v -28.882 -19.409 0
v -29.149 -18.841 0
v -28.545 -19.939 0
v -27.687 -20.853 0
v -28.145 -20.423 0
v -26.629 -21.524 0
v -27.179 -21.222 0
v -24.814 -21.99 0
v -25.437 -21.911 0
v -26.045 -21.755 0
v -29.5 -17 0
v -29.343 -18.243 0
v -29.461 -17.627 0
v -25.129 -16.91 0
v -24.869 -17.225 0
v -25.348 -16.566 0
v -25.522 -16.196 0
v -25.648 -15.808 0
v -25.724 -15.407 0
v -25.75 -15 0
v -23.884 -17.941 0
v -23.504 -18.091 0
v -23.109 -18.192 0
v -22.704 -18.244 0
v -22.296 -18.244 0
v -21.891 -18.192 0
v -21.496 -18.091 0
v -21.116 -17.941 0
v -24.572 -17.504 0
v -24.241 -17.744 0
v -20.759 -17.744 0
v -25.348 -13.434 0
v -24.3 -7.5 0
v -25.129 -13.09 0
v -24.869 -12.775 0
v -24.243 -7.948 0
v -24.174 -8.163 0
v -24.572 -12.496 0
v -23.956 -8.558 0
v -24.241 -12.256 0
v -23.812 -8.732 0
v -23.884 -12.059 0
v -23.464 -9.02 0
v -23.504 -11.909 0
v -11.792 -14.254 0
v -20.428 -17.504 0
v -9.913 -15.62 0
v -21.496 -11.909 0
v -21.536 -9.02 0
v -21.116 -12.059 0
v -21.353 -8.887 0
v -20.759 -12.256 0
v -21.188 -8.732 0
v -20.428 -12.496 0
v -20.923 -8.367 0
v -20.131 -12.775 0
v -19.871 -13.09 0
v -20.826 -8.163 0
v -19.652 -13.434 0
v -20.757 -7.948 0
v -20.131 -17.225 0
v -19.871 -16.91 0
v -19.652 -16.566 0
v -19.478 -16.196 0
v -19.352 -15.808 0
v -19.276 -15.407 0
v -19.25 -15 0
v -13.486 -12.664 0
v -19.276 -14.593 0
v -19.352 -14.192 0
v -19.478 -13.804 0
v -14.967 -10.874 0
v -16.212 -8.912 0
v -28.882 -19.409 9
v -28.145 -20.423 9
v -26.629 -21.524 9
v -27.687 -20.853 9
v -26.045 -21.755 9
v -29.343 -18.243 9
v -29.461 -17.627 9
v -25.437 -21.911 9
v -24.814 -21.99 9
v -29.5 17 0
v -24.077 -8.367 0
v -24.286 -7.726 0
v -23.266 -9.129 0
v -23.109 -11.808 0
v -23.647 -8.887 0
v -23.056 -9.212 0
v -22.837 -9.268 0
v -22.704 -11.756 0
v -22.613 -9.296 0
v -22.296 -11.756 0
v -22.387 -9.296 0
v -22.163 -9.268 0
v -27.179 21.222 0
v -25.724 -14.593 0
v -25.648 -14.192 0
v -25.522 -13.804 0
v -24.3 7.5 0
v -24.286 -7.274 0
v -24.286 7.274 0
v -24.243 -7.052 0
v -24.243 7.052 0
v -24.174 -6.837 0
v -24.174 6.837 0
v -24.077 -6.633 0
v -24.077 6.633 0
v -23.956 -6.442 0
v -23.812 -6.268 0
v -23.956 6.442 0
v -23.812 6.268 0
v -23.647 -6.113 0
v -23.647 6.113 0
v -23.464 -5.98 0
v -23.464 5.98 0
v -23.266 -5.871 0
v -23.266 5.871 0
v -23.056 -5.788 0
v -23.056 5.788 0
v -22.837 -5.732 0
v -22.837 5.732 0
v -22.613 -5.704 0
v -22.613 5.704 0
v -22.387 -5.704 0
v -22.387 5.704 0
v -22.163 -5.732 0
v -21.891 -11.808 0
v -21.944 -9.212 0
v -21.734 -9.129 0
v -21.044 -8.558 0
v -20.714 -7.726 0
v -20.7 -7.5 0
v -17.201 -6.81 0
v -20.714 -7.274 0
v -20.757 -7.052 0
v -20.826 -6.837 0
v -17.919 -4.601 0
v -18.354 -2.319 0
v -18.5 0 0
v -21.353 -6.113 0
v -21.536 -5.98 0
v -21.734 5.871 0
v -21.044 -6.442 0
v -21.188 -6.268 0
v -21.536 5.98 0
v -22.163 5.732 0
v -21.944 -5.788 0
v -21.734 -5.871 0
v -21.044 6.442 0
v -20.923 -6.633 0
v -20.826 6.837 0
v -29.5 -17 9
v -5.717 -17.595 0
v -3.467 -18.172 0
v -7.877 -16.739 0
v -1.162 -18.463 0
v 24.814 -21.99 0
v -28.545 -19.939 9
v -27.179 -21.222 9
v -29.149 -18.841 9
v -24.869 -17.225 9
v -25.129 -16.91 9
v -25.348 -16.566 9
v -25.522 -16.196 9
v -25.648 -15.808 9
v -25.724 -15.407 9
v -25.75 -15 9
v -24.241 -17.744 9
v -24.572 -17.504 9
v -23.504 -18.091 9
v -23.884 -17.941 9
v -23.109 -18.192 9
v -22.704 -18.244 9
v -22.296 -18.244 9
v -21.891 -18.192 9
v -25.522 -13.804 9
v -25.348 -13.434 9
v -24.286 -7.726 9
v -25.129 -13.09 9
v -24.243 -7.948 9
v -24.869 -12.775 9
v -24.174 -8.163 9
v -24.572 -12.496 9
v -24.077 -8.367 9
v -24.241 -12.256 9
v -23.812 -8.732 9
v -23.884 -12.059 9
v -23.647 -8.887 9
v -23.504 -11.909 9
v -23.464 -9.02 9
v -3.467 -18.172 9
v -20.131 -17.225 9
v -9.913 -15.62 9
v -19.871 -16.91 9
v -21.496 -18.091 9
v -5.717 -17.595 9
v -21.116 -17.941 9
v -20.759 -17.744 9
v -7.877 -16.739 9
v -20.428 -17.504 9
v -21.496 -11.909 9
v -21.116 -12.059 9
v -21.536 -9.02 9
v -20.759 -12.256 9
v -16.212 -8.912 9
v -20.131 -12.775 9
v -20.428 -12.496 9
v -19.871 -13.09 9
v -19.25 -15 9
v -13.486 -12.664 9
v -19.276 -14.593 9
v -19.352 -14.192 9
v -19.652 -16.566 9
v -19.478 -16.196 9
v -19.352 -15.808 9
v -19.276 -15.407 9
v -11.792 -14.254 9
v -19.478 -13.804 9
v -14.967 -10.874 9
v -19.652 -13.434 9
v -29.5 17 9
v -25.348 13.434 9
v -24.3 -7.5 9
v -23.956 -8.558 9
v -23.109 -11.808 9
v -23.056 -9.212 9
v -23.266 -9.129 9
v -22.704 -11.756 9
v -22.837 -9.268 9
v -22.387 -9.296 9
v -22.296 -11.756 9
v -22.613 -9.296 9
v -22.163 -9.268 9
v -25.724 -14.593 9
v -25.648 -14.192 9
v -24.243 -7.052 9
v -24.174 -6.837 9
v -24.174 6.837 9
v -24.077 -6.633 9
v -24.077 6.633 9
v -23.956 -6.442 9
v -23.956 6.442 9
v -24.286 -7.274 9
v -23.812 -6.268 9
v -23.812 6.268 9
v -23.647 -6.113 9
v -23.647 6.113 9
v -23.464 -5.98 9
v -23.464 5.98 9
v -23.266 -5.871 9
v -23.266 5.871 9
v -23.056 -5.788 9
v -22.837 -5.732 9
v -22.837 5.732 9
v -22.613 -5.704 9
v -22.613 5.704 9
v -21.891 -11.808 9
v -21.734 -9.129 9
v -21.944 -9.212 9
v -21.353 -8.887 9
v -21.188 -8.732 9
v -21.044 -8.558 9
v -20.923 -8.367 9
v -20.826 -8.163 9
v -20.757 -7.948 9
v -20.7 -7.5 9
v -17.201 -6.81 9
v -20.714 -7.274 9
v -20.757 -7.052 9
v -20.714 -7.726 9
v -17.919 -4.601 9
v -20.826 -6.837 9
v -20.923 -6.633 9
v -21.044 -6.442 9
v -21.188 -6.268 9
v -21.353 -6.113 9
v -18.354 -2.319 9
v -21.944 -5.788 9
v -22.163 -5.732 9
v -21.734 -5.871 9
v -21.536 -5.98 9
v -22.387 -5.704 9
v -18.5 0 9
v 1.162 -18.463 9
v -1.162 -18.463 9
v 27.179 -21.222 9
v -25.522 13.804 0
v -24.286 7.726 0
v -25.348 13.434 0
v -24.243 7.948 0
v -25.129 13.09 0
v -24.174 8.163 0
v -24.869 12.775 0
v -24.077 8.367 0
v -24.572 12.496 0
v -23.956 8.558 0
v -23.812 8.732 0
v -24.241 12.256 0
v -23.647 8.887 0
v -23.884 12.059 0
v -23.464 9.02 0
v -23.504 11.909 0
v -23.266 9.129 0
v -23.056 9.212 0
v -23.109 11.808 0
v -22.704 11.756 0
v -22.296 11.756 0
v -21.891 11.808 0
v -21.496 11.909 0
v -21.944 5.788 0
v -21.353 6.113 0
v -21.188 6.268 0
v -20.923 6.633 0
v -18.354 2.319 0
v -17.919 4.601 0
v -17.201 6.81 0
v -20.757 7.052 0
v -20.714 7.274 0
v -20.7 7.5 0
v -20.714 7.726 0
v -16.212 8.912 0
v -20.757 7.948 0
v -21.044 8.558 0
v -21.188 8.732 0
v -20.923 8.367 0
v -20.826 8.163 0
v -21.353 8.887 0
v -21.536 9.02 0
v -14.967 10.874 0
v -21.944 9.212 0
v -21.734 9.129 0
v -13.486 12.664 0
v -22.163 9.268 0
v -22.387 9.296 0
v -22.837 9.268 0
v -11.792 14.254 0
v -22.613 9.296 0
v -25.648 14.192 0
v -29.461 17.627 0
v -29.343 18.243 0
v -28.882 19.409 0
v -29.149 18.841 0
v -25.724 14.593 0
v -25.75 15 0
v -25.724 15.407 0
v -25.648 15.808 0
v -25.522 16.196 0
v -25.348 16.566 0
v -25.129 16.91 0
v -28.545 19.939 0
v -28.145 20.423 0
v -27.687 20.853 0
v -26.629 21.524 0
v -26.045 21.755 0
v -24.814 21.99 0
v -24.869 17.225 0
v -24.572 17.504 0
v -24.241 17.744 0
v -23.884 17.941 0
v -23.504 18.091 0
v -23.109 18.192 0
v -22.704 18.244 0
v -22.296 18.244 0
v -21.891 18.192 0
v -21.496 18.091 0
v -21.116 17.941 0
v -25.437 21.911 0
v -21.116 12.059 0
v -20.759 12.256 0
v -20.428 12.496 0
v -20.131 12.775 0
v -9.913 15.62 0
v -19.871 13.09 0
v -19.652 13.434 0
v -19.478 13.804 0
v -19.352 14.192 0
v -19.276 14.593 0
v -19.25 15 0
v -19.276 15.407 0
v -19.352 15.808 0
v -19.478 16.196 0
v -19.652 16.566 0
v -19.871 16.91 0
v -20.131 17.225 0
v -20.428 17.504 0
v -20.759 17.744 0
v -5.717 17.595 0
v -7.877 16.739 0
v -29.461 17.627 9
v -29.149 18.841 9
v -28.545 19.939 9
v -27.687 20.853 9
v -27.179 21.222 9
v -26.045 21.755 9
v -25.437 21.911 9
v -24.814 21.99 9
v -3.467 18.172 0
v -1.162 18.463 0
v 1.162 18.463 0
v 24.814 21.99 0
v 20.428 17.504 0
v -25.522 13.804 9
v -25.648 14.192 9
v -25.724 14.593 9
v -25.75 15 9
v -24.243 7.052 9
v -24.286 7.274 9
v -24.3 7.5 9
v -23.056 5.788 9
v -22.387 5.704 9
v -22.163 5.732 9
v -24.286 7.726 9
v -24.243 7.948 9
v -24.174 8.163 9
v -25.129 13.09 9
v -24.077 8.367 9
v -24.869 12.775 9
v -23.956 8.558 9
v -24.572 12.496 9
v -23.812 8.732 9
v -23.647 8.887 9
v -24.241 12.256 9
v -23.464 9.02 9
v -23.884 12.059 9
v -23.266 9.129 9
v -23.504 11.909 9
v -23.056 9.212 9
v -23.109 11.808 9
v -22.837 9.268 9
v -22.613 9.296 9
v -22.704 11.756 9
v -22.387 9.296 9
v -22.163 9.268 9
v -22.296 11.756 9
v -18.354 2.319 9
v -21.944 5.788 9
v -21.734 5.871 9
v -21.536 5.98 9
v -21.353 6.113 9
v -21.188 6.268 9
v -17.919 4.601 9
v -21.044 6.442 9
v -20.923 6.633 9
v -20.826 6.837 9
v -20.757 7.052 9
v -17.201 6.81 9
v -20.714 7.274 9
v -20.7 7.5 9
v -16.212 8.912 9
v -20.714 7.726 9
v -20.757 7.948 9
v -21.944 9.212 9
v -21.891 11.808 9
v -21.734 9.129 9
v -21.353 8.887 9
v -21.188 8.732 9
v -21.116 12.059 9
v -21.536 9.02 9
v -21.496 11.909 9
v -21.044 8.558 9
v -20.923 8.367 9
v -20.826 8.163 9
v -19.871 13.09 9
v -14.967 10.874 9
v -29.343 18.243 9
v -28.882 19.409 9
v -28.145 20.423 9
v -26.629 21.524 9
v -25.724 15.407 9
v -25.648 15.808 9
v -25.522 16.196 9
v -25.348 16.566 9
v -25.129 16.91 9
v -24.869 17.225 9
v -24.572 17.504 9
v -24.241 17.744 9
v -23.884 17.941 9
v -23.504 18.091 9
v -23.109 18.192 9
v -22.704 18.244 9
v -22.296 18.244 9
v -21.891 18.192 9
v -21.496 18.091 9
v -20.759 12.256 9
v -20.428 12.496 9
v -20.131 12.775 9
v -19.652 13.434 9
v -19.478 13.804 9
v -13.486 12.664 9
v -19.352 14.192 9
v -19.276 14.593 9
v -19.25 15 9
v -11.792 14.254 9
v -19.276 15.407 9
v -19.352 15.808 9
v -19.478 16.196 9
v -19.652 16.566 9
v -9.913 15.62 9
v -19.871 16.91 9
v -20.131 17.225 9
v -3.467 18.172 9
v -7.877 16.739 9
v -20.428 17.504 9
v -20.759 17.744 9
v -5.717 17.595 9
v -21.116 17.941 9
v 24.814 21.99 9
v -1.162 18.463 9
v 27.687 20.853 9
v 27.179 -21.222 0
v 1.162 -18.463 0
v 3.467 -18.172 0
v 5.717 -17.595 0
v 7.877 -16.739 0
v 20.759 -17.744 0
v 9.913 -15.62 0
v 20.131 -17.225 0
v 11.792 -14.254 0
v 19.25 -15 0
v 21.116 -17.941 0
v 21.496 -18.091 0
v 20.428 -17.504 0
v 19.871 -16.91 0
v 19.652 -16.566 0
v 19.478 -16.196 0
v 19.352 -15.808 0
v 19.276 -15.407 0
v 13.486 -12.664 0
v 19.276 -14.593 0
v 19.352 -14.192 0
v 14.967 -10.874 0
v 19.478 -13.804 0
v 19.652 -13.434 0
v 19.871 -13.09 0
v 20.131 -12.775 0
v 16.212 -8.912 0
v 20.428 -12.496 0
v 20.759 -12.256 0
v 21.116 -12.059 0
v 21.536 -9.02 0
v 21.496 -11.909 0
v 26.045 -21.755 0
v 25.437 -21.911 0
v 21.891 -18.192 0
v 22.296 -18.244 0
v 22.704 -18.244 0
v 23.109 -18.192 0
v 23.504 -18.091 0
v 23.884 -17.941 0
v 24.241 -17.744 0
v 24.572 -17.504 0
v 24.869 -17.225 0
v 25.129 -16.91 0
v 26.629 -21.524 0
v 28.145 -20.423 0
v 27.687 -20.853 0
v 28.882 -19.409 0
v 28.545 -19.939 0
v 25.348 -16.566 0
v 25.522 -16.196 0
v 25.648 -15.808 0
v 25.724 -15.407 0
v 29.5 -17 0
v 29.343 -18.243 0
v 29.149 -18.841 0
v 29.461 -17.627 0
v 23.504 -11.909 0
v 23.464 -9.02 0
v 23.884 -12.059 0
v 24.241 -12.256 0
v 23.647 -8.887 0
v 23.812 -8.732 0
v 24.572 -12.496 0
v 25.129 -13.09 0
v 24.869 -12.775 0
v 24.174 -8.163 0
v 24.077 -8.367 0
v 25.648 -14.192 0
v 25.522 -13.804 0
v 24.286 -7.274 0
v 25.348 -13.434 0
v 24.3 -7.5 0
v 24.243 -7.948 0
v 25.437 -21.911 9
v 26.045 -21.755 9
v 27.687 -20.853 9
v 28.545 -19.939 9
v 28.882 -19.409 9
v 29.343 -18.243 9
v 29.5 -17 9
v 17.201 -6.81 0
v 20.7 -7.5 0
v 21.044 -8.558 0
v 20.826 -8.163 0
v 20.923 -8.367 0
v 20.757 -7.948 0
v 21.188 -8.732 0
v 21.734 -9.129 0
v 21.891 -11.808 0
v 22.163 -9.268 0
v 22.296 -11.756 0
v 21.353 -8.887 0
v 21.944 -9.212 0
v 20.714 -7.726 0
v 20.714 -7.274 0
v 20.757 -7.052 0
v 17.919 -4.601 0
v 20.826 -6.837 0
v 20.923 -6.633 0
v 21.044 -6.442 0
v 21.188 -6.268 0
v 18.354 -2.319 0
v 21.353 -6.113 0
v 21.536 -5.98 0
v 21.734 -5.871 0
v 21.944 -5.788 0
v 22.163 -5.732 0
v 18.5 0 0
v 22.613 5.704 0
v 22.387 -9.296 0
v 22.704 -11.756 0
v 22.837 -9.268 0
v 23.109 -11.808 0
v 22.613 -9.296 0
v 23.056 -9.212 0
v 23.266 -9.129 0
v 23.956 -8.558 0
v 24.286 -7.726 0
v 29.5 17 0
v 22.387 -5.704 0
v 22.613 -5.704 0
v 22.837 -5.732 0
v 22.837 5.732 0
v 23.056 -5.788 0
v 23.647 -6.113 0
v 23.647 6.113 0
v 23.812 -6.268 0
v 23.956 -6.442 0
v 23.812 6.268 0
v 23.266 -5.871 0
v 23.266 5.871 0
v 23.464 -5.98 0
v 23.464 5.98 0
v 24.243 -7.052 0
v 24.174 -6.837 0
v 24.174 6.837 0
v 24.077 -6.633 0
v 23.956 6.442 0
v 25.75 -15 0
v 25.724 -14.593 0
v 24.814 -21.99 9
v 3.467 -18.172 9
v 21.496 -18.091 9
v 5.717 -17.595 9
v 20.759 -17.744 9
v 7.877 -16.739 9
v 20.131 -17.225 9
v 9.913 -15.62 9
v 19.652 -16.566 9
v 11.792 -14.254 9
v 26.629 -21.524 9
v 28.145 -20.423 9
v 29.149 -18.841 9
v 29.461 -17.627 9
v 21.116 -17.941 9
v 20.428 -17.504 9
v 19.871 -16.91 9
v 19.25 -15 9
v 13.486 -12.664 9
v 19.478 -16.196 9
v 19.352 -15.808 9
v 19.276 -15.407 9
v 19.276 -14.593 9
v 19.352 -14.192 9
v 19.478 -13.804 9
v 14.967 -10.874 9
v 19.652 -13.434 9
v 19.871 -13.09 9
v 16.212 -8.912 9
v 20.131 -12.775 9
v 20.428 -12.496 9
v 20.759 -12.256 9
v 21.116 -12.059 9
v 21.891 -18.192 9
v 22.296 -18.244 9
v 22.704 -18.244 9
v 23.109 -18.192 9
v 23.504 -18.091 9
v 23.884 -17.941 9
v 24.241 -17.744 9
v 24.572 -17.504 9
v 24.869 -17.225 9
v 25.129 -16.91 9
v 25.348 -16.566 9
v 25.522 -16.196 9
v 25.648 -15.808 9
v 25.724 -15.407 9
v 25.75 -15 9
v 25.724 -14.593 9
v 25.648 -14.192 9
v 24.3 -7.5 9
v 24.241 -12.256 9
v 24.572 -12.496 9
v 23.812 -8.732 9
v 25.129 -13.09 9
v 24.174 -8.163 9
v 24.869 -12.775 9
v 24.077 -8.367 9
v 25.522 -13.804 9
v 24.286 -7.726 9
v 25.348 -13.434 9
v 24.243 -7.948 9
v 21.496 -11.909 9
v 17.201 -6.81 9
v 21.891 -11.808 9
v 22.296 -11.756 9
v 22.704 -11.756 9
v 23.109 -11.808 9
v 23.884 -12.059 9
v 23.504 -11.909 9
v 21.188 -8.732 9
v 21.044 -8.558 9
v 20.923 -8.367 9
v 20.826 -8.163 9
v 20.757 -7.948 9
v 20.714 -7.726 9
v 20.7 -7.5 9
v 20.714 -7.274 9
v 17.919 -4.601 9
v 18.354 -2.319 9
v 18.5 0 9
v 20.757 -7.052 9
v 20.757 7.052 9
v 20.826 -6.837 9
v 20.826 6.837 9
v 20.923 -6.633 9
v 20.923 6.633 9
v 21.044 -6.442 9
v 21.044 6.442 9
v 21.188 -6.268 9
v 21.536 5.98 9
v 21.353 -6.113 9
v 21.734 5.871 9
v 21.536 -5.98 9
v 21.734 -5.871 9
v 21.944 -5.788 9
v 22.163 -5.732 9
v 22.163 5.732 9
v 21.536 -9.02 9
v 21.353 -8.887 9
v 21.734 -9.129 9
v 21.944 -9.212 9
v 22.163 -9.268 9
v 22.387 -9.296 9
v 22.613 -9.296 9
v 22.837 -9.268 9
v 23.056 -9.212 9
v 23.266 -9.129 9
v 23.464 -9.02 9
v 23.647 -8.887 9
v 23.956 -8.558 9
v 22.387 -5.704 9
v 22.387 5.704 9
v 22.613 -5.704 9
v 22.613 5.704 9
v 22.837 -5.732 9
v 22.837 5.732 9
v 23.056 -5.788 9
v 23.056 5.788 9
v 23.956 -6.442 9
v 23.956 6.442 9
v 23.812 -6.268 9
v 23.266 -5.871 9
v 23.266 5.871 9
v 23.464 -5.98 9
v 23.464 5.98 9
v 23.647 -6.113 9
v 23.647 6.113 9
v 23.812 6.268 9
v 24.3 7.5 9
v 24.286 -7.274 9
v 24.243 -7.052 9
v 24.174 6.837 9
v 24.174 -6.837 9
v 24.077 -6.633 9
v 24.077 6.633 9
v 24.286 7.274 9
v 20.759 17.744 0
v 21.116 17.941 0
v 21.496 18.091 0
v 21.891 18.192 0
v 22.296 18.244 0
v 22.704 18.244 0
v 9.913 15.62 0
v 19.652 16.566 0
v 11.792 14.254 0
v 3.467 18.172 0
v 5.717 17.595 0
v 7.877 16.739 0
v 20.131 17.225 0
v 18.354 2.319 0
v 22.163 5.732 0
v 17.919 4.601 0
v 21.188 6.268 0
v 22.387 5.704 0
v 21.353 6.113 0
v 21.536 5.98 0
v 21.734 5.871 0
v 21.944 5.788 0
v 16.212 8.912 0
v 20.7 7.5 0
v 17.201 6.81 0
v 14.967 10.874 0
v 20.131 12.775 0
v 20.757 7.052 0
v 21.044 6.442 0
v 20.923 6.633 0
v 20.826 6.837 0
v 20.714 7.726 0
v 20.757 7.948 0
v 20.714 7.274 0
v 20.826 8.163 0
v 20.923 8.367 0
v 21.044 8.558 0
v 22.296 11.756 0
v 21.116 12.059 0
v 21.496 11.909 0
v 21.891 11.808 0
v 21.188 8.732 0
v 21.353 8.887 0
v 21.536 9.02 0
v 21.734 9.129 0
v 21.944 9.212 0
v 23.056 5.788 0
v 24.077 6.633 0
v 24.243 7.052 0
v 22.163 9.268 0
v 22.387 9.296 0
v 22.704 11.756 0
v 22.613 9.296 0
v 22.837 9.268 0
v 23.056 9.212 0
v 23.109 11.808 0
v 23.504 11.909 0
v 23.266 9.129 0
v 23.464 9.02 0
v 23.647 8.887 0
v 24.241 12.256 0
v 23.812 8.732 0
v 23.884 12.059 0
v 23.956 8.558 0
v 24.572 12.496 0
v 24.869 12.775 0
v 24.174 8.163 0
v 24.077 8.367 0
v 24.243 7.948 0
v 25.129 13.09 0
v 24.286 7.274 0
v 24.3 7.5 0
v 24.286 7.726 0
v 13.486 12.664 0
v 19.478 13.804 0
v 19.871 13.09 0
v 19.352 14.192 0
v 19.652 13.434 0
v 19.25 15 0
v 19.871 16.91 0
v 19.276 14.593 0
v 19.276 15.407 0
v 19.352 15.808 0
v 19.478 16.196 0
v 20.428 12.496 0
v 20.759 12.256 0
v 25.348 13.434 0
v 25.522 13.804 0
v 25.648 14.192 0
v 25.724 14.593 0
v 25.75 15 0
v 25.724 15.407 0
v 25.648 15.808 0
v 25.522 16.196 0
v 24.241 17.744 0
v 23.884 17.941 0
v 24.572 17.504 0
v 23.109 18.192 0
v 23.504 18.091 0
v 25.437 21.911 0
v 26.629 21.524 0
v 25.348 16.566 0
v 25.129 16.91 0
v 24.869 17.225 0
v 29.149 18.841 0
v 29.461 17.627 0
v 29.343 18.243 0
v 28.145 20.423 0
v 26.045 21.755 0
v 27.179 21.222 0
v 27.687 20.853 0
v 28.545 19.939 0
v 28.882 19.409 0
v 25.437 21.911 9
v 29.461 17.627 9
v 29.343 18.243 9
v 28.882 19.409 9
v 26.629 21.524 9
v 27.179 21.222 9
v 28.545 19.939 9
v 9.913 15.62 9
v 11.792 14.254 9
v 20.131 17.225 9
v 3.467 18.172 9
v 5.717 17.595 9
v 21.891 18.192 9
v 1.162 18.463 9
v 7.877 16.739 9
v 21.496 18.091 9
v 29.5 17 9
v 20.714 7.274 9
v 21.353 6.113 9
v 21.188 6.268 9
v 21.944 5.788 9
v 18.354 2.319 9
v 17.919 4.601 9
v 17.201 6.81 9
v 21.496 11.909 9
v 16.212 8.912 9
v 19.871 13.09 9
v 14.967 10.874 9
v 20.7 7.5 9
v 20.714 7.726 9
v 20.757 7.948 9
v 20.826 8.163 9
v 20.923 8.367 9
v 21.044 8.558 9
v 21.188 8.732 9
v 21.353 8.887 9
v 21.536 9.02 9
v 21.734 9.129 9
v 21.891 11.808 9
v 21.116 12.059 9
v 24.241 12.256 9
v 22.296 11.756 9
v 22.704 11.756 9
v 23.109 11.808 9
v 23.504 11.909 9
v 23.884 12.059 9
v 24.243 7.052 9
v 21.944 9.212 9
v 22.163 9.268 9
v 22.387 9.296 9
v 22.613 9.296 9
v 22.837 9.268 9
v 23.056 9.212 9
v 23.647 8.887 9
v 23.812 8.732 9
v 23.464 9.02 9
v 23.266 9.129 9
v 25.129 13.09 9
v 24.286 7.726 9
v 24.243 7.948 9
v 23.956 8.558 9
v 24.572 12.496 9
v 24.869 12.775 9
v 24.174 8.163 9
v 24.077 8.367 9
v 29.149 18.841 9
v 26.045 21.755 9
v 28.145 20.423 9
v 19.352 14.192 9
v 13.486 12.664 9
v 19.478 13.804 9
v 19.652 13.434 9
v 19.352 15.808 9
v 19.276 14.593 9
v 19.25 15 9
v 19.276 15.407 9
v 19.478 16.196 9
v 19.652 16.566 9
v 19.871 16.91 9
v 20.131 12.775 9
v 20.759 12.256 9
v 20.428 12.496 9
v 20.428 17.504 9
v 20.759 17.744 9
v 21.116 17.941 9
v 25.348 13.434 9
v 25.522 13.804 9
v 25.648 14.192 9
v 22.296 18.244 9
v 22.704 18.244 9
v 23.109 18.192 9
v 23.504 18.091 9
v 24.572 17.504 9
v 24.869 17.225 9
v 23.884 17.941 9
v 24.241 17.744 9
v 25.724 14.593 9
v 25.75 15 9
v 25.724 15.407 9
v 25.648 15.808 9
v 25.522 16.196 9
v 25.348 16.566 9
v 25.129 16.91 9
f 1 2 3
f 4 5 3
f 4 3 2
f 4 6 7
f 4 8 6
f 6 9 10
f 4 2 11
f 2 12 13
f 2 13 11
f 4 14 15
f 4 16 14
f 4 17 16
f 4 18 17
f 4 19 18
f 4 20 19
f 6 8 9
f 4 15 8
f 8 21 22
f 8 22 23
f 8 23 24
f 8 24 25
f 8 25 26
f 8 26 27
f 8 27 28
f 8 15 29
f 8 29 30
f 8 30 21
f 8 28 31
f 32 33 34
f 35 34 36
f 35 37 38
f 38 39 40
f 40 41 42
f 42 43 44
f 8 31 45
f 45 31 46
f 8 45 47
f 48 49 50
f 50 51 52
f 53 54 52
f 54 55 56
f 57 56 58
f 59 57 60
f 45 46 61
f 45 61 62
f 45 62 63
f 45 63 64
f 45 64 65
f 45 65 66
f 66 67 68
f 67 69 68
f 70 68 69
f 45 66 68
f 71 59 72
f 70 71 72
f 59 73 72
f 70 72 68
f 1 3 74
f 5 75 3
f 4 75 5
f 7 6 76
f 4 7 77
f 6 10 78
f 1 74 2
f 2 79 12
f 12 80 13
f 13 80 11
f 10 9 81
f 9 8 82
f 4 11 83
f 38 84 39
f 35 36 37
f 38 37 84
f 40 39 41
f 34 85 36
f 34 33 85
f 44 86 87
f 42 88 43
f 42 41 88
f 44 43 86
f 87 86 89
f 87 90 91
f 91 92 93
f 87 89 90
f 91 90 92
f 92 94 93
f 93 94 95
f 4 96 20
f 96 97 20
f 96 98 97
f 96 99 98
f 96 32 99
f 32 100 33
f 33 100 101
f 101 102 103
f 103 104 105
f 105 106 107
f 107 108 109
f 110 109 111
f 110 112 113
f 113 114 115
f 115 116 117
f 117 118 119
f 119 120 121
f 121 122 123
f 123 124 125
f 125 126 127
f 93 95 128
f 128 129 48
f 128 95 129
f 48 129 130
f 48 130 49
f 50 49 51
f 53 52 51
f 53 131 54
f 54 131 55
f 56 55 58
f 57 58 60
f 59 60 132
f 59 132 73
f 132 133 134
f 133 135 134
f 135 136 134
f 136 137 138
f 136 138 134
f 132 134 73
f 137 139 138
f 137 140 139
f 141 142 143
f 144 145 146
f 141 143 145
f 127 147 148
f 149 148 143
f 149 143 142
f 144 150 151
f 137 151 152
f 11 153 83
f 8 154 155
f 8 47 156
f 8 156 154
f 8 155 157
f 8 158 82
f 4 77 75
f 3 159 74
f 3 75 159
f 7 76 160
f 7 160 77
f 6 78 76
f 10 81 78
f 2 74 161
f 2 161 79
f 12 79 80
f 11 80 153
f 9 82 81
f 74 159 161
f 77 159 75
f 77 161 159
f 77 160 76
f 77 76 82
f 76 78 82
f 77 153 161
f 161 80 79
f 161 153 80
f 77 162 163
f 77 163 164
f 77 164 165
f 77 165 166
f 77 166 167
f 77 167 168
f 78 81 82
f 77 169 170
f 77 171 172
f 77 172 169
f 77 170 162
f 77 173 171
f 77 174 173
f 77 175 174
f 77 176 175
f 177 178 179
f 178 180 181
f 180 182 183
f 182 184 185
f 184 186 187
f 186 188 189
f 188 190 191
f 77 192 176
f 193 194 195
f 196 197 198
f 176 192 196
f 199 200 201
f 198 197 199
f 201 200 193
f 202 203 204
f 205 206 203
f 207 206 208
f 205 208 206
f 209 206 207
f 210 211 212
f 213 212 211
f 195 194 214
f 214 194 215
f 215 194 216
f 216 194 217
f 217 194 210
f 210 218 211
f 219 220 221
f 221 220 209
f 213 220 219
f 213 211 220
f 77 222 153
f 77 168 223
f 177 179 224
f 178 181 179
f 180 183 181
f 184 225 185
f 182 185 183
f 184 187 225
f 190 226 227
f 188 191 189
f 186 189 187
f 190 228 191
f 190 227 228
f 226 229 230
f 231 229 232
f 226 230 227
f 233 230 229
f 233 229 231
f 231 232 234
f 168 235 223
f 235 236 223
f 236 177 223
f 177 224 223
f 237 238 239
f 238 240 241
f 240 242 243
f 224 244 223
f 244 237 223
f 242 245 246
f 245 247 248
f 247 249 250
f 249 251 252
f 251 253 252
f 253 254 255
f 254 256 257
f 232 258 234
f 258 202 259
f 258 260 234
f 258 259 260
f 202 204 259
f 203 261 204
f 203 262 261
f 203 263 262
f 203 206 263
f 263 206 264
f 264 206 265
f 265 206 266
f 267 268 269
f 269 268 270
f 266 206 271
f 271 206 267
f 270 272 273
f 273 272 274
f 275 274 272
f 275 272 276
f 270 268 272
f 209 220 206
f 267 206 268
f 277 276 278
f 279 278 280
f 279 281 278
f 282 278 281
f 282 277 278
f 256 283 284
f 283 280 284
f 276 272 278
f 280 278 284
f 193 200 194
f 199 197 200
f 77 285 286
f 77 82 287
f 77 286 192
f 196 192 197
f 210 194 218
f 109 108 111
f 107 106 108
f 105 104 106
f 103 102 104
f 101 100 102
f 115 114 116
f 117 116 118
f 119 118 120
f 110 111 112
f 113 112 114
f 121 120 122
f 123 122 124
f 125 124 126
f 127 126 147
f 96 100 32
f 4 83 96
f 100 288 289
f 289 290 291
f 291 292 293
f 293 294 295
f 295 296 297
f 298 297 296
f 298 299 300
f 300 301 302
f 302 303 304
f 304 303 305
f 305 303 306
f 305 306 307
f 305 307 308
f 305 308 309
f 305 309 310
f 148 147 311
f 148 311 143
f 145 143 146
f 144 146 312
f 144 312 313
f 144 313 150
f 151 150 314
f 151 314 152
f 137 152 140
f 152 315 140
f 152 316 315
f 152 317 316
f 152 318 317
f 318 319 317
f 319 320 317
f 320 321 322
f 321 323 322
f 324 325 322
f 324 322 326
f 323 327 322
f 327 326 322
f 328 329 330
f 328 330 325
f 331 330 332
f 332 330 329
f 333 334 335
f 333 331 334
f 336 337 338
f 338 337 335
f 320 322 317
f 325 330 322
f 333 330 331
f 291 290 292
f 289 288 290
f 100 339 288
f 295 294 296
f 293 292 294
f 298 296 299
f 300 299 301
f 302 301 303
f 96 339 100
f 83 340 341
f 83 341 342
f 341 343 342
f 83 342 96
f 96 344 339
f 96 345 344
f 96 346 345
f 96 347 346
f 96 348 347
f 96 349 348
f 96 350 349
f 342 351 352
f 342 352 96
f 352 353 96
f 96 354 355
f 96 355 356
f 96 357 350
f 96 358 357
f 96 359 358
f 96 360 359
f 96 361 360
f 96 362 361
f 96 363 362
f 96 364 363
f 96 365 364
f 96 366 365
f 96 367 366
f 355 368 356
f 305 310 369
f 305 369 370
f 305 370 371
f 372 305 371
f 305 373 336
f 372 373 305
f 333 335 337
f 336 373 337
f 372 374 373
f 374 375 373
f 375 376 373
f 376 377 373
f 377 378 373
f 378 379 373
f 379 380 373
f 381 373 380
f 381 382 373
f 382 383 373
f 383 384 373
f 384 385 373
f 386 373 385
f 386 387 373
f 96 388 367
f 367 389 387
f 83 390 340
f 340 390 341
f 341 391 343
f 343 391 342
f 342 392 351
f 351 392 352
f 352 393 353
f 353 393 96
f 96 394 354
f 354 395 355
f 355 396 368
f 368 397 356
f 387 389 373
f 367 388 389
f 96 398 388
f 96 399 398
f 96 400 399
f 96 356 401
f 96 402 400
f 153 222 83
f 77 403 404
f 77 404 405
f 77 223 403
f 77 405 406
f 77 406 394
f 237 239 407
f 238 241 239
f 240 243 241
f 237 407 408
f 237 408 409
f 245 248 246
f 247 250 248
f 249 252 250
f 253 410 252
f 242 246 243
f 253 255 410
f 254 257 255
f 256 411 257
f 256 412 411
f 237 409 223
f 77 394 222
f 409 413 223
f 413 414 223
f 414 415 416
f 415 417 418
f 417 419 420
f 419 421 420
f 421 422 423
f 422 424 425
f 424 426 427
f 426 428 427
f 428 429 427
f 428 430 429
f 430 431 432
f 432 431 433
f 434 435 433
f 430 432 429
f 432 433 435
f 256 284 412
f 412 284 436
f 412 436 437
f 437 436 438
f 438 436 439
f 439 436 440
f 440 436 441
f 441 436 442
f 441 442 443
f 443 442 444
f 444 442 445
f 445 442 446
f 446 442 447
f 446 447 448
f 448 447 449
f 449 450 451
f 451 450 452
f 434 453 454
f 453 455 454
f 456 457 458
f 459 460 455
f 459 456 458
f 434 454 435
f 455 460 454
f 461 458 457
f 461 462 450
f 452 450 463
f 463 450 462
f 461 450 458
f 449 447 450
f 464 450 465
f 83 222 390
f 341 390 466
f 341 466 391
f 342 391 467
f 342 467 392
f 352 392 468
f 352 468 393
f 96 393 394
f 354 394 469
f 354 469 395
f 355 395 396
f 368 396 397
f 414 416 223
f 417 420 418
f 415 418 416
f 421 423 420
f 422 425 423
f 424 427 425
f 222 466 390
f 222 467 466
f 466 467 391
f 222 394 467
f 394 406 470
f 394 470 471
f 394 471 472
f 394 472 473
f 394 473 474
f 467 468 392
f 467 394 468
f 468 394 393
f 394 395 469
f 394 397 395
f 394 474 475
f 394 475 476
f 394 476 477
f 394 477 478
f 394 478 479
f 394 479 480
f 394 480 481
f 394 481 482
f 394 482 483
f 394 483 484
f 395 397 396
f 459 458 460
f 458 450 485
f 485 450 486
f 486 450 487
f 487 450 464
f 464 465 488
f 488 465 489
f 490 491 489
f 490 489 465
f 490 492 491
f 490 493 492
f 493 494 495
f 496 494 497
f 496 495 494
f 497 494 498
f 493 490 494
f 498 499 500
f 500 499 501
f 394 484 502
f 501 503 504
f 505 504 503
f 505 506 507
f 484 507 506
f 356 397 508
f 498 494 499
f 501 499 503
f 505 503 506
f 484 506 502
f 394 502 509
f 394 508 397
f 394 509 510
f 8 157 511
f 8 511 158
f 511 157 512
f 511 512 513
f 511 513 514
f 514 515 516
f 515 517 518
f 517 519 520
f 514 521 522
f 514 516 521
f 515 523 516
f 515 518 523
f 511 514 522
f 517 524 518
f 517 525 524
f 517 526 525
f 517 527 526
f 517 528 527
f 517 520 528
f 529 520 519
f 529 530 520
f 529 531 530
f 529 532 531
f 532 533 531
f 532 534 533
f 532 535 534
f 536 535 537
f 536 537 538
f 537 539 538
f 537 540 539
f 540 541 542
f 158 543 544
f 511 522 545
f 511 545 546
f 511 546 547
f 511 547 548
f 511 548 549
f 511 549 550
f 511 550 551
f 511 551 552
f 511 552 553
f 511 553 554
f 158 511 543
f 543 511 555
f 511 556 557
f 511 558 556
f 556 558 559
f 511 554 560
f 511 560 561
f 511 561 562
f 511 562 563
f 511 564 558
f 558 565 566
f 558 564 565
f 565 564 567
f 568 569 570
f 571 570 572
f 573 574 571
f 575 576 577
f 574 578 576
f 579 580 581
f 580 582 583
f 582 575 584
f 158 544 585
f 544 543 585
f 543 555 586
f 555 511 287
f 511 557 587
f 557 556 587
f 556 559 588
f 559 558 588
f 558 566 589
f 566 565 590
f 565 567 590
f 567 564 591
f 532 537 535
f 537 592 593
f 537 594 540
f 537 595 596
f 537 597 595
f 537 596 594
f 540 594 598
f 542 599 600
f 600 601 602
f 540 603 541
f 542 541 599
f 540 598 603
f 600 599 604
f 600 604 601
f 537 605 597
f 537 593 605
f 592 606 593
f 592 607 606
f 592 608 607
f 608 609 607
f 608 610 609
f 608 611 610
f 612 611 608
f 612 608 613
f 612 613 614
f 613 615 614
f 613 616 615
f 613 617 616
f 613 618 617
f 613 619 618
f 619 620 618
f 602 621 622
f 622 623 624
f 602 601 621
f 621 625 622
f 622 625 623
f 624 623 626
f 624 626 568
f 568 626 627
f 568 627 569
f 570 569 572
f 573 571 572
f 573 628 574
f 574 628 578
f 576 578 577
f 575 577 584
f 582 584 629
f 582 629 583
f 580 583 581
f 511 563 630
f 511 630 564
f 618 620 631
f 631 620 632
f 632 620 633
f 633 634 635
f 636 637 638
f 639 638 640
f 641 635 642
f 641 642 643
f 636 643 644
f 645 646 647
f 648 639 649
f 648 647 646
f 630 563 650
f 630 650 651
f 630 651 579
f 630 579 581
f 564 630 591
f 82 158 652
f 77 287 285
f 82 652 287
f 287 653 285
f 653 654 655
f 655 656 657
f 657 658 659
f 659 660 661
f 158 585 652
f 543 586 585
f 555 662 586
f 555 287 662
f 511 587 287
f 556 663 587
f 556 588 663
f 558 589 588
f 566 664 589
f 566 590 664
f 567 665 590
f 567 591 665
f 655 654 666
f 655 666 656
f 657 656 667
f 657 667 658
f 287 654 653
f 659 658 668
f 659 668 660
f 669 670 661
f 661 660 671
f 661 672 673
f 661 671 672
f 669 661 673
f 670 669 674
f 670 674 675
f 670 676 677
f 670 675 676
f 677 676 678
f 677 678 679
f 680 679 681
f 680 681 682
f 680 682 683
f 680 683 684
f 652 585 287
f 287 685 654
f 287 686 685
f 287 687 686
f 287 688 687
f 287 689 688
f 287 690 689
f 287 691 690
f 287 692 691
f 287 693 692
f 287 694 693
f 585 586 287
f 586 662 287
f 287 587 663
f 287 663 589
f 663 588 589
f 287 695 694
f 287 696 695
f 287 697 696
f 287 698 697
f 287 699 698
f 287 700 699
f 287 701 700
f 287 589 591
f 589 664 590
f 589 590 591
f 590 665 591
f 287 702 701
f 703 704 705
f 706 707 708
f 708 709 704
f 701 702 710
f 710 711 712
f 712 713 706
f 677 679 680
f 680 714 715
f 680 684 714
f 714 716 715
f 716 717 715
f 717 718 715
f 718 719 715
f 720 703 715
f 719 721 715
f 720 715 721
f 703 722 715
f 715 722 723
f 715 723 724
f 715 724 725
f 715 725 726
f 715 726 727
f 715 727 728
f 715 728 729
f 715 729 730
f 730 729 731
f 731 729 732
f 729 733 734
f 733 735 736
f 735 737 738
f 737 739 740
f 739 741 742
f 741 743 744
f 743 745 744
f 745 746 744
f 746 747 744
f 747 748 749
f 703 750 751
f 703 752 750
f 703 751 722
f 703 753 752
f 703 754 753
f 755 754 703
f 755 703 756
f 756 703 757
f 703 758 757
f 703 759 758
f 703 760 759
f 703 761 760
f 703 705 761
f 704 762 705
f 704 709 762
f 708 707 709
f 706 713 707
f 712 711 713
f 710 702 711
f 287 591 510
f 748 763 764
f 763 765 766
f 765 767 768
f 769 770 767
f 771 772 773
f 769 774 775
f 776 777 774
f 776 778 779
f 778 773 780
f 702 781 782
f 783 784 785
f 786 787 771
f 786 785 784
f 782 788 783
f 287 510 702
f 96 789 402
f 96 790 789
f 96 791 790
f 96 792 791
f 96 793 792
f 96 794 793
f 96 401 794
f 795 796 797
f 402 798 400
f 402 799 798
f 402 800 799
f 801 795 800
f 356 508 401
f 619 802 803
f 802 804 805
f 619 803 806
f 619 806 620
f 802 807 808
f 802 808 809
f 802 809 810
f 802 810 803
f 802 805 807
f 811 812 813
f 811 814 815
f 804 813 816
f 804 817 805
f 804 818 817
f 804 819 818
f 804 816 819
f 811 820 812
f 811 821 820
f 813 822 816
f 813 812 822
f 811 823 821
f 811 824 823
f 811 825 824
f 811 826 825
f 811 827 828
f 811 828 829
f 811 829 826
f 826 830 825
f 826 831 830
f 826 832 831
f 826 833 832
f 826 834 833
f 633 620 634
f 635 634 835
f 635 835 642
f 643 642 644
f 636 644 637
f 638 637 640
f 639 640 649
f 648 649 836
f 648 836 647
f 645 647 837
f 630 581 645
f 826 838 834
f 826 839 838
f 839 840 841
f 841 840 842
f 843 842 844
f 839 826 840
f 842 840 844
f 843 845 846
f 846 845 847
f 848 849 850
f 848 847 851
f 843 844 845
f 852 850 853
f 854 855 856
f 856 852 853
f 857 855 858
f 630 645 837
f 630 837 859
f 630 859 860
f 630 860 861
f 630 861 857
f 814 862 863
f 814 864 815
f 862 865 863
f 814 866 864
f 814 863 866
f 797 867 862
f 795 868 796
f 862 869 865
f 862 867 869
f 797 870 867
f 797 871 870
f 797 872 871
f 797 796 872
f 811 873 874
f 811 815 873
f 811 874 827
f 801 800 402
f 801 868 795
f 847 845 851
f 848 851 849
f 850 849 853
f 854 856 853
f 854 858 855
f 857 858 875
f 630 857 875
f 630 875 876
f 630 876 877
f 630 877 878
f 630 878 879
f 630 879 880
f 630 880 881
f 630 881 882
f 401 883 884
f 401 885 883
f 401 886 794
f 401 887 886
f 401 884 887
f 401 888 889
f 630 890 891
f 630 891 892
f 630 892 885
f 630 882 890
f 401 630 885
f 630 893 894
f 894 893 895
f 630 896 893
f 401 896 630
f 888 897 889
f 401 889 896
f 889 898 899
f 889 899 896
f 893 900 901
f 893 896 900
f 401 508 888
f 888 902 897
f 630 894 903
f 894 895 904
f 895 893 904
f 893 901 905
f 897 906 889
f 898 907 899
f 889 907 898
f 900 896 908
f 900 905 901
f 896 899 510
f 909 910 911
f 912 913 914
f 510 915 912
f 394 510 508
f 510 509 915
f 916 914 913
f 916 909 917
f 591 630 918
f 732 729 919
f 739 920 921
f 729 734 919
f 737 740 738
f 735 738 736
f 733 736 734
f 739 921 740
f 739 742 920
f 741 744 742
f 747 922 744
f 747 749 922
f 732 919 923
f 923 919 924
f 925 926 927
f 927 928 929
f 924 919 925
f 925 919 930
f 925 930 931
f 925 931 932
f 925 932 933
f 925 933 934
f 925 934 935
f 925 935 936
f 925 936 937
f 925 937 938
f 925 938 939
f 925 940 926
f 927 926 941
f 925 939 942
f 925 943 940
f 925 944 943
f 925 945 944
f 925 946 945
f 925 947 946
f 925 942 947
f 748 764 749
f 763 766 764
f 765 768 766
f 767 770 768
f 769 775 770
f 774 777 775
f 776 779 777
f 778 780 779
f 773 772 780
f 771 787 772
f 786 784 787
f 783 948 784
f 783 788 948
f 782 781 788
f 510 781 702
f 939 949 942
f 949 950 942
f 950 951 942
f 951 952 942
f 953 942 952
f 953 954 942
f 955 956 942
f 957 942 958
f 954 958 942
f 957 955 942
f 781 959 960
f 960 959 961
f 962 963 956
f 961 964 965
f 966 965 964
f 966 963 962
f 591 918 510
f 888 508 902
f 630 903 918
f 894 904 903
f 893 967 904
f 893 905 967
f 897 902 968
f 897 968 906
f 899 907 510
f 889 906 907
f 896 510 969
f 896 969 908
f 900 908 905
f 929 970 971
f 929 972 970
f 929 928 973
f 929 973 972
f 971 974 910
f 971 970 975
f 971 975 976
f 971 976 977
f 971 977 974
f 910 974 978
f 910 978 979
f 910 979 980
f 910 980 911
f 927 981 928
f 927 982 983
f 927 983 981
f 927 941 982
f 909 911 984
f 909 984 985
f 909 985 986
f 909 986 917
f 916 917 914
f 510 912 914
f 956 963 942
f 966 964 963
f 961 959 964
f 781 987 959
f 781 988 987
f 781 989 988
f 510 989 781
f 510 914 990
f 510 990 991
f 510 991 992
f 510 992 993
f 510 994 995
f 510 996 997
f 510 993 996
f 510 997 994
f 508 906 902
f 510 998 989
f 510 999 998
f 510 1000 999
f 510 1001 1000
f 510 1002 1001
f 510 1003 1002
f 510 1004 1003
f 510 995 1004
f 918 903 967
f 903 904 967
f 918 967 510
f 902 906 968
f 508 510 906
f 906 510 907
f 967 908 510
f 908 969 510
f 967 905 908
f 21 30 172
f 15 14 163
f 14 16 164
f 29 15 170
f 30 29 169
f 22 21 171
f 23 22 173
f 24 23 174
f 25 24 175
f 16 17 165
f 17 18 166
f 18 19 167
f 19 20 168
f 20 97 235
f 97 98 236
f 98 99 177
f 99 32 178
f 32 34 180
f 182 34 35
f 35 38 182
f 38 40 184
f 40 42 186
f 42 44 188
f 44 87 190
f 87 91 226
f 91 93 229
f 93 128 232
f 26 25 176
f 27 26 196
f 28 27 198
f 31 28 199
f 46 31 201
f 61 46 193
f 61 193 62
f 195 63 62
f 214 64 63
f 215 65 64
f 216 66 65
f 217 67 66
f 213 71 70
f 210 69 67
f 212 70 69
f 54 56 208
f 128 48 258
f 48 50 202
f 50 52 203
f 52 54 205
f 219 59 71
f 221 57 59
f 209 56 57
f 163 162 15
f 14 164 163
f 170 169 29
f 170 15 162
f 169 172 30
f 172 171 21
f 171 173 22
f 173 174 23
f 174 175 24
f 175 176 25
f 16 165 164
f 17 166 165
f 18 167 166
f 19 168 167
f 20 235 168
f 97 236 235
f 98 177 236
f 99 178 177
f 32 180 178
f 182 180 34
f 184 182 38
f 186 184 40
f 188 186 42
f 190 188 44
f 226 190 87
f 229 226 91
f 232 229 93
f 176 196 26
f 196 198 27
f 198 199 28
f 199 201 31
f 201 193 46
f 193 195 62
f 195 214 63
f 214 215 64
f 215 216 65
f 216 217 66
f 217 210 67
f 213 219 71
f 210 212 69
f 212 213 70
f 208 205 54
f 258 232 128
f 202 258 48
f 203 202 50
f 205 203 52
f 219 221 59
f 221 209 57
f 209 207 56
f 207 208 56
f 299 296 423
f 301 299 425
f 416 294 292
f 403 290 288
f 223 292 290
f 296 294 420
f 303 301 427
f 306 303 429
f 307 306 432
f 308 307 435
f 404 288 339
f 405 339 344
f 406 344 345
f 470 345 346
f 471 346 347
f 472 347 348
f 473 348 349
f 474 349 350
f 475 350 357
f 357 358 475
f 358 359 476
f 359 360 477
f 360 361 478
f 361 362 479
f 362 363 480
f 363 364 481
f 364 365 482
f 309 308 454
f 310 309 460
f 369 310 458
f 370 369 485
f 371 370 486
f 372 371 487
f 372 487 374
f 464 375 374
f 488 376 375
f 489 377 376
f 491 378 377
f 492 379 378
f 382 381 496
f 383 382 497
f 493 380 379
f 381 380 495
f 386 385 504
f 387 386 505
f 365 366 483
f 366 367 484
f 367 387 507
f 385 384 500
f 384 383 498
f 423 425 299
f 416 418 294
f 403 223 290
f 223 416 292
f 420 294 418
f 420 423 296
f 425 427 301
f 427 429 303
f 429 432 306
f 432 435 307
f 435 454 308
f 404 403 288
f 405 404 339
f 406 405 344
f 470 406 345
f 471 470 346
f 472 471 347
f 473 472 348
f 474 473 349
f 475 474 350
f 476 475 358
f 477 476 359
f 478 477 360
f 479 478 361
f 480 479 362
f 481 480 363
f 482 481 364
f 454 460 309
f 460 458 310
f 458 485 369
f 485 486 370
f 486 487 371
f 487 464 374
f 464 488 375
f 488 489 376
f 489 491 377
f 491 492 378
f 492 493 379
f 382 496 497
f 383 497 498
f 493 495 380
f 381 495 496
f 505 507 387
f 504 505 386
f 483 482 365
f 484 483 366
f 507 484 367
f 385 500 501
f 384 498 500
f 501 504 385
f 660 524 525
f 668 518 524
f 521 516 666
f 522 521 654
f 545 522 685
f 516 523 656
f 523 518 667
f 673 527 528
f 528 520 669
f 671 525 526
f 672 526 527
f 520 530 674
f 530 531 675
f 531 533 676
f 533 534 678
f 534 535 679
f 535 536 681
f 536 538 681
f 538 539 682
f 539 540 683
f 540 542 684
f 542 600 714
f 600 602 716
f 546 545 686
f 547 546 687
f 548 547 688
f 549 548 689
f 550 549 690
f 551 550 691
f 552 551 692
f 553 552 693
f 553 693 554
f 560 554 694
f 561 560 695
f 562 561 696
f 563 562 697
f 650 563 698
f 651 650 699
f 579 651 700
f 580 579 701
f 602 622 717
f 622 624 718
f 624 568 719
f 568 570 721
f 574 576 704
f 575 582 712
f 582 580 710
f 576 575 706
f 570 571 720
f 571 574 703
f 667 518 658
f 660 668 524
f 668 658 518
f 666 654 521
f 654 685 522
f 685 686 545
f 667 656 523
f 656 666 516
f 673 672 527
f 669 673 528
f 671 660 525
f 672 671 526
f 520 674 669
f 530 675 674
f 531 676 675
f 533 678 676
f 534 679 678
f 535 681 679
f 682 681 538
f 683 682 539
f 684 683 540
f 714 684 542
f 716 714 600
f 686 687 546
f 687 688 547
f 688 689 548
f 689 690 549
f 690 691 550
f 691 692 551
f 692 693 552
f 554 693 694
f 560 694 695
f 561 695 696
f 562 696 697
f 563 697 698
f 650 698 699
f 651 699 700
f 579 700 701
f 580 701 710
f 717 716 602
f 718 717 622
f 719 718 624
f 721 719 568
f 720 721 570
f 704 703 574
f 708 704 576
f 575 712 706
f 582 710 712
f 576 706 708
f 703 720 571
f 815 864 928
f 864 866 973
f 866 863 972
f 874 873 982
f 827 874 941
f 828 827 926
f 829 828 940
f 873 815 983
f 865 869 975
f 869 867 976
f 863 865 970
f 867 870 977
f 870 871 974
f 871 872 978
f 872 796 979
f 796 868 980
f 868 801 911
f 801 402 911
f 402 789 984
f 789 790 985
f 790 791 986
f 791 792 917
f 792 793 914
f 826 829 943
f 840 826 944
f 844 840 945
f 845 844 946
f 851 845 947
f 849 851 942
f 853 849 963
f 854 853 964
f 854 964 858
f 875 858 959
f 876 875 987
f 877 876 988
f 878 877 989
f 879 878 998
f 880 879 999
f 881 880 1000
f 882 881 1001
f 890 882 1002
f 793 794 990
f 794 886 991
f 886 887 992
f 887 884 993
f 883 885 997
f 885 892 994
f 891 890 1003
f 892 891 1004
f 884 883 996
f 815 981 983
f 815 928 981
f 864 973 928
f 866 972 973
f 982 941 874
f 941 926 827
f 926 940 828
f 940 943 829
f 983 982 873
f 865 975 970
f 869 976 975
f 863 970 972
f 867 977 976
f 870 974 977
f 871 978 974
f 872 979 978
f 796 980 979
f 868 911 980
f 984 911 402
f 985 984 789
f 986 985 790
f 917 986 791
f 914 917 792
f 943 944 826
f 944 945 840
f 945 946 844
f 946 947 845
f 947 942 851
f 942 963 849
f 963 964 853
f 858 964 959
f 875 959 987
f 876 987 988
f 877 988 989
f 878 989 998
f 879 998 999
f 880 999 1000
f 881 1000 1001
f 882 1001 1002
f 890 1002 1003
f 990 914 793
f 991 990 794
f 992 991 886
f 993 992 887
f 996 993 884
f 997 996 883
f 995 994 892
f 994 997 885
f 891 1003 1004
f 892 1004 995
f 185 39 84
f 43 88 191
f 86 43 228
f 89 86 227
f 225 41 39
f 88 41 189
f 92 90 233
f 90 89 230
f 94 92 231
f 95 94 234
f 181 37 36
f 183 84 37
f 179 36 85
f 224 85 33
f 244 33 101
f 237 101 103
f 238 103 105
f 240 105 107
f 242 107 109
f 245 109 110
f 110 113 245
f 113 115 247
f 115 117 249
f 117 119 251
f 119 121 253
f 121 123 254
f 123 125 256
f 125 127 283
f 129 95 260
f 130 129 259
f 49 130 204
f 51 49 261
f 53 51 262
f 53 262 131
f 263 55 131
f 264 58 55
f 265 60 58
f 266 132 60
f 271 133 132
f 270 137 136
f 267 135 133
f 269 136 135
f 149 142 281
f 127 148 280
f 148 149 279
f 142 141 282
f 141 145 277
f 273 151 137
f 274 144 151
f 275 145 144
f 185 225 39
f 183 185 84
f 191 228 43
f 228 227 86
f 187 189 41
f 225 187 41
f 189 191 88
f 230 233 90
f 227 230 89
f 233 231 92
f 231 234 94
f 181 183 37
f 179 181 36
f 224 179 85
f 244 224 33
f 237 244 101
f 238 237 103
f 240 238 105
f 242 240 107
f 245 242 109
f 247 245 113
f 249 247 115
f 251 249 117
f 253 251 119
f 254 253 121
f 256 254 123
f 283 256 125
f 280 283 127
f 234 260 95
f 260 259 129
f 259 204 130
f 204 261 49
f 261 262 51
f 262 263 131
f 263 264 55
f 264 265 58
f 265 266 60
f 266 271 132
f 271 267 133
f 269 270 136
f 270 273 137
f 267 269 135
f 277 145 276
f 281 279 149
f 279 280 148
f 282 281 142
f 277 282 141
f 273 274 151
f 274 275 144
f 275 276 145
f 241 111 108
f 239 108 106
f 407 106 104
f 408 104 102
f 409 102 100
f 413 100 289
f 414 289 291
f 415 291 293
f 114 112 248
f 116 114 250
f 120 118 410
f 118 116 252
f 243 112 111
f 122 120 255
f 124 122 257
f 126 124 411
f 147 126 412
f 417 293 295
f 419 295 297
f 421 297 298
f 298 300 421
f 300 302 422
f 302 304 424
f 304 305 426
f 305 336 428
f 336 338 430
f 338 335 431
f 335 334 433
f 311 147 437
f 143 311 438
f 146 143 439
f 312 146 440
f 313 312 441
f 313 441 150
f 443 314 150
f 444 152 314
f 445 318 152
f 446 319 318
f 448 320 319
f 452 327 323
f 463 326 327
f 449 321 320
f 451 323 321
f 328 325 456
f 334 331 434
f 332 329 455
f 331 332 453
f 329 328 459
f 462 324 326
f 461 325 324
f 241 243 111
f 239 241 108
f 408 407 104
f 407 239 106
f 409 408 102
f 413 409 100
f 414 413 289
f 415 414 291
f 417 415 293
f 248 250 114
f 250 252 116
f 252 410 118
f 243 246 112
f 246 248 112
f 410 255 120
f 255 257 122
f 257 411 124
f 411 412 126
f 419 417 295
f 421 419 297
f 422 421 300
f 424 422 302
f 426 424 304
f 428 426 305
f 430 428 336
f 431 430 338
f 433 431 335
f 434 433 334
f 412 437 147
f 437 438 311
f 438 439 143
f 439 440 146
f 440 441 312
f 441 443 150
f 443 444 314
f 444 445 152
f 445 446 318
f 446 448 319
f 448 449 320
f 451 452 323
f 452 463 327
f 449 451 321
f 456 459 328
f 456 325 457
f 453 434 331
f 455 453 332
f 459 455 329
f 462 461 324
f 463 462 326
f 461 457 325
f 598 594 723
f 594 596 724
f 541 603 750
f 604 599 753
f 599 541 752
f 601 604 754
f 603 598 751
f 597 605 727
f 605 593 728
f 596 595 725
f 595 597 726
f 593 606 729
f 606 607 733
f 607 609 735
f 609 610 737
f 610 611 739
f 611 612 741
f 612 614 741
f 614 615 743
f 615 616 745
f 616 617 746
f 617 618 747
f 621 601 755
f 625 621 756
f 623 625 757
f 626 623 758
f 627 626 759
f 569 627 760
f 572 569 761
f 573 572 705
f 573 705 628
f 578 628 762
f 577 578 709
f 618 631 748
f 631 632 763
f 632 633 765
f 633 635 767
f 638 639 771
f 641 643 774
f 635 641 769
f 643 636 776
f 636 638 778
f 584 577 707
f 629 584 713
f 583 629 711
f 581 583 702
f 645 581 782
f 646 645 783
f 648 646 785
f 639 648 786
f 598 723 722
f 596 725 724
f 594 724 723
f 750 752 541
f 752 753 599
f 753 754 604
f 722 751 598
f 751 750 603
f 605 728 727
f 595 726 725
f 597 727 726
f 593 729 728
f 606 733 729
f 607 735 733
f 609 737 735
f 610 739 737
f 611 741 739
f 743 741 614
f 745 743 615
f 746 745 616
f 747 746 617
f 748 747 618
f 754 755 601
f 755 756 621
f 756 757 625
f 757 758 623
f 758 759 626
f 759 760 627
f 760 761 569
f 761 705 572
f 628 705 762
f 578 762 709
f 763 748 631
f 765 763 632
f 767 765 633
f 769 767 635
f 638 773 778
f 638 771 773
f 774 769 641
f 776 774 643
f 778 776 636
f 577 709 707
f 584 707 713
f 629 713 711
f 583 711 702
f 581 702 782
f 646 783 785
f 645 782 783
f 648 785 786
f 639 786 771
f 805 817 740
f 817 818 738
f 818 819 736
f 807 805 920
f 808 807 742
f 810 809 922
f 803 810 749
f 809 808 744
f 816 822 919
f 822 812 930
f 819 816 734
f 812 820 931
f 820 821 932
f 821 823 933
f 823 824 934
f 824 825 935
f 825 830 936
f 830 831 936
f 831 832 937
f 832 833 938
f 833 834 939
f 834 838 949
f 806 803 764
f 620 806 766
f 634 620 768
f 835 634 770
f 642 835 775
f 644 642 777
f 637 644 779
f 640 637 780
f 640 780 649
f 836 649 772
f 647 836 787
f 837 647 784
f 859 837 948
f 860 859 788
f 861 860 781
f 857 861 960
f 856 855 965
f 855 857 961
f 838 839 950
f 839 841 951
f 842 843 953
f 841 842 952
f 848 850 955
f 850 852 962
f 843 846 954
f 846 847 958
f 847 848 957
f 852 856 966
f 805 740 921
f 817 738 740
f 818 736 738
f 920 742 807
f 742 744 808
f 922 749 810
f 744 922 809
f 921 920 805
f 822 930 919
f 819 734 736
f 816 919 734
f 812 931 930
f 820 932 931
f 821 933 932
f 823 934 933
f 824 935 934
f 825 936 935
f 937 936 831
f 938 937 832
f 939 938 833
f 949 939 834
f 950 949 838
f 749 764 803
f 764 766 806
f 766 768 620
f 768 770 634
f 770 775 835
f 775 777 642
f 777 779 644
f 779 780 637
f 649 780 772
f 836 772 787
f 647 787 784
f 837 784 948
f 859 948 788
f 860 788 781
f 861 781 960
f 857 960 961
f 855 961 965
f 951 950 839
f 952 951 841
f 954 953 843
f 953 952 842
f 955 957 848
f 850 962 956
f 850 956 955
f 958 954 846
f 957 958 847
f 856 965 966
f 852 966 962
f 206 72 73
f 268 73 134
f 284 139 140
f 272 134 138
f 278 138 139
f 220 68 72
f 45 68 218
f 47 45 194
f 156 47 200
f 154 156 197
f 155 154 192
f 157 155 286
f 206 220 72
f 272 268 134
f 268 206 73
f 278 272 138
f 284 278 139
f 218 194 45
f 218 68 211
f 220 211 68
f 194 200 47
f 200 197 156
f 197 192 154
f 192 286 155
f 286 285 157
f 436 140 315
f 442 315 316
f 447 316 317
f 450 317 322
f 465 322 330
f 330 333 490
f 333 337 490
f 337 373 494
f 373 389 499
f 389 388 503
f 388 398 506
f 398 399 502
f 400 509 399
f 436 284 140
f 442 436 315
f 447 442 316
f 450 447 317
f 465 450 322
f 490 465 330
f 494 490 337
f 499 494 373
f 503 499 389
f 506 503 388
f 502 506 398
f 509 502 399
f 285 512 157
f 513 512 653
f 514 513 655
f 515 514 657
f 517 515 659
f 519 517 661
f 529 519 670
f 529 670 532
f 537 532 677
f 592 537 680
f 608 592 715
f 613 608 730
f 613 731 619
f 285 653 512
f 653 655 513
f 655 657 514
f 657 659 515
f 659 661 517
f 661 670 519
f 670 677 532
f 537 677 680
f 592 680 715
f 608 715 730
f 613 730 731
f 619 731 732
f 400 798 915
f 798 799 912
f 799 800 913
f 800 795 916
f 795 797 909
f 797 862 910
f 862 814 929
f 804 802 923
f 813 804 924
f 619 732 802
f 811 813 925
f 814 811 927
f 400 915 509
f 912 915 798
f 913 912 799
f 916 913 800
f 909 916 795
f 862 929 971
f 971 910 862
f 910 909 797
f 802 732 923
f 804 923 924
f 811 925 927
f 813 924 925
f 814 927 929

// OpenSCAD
$fn = 50;

difference() {
	union() {
		hull() {
			translate(v = [-24.5, 17.0, 0]) {
				cylinder(h = 9, r = 5);
			}
			translate(v = [24.5, 17.0, 0]) {
				cylinder(h = 9, r = 5);
			}
			translate(v = [-24.5, -17.0, 0]) {
				cylinder(h = 9, r = 5);
			}
			translate(v = [24.5, -17.0, 0]) {
				cylinder(h = 9, r = 5);
			}
		}
	}
	union() {
		translate(v = [-22.5, -15.0, 0]) {
			cylinder(h = 9, r = 3.25);
		}
		translate(v = [-22.5, 15.0, 0]) {
			cylinder(h = 9, r = 3.25);
		}
		translate(v = [22.5, -15.0, 0]) {
			cylinder(h = 9, r = 3.25);
		}
		translate(v = [22.5, 15.0, 0]) {
			cylinder(h = 9, r = 3.25);
		}
		translate(v = [-22.5, -7.5, 0]) {
			cylinder(h = 9, r = 1.8);
		}
		translate(v = [-22.5, 7.5, 0]) {
			cylinder(h = 9, r = 1.8);
		}
		translate(v = [22.5, -7.5, 0]) {
			cylinder(h = 9, r = 1.8);
		}
		translate(v = [22.5, 7.5, 0]) {
			cylinder(h = 9, r = 1.8);
		}
		cylinder(h = 9, r = 18.5);
	}
}
